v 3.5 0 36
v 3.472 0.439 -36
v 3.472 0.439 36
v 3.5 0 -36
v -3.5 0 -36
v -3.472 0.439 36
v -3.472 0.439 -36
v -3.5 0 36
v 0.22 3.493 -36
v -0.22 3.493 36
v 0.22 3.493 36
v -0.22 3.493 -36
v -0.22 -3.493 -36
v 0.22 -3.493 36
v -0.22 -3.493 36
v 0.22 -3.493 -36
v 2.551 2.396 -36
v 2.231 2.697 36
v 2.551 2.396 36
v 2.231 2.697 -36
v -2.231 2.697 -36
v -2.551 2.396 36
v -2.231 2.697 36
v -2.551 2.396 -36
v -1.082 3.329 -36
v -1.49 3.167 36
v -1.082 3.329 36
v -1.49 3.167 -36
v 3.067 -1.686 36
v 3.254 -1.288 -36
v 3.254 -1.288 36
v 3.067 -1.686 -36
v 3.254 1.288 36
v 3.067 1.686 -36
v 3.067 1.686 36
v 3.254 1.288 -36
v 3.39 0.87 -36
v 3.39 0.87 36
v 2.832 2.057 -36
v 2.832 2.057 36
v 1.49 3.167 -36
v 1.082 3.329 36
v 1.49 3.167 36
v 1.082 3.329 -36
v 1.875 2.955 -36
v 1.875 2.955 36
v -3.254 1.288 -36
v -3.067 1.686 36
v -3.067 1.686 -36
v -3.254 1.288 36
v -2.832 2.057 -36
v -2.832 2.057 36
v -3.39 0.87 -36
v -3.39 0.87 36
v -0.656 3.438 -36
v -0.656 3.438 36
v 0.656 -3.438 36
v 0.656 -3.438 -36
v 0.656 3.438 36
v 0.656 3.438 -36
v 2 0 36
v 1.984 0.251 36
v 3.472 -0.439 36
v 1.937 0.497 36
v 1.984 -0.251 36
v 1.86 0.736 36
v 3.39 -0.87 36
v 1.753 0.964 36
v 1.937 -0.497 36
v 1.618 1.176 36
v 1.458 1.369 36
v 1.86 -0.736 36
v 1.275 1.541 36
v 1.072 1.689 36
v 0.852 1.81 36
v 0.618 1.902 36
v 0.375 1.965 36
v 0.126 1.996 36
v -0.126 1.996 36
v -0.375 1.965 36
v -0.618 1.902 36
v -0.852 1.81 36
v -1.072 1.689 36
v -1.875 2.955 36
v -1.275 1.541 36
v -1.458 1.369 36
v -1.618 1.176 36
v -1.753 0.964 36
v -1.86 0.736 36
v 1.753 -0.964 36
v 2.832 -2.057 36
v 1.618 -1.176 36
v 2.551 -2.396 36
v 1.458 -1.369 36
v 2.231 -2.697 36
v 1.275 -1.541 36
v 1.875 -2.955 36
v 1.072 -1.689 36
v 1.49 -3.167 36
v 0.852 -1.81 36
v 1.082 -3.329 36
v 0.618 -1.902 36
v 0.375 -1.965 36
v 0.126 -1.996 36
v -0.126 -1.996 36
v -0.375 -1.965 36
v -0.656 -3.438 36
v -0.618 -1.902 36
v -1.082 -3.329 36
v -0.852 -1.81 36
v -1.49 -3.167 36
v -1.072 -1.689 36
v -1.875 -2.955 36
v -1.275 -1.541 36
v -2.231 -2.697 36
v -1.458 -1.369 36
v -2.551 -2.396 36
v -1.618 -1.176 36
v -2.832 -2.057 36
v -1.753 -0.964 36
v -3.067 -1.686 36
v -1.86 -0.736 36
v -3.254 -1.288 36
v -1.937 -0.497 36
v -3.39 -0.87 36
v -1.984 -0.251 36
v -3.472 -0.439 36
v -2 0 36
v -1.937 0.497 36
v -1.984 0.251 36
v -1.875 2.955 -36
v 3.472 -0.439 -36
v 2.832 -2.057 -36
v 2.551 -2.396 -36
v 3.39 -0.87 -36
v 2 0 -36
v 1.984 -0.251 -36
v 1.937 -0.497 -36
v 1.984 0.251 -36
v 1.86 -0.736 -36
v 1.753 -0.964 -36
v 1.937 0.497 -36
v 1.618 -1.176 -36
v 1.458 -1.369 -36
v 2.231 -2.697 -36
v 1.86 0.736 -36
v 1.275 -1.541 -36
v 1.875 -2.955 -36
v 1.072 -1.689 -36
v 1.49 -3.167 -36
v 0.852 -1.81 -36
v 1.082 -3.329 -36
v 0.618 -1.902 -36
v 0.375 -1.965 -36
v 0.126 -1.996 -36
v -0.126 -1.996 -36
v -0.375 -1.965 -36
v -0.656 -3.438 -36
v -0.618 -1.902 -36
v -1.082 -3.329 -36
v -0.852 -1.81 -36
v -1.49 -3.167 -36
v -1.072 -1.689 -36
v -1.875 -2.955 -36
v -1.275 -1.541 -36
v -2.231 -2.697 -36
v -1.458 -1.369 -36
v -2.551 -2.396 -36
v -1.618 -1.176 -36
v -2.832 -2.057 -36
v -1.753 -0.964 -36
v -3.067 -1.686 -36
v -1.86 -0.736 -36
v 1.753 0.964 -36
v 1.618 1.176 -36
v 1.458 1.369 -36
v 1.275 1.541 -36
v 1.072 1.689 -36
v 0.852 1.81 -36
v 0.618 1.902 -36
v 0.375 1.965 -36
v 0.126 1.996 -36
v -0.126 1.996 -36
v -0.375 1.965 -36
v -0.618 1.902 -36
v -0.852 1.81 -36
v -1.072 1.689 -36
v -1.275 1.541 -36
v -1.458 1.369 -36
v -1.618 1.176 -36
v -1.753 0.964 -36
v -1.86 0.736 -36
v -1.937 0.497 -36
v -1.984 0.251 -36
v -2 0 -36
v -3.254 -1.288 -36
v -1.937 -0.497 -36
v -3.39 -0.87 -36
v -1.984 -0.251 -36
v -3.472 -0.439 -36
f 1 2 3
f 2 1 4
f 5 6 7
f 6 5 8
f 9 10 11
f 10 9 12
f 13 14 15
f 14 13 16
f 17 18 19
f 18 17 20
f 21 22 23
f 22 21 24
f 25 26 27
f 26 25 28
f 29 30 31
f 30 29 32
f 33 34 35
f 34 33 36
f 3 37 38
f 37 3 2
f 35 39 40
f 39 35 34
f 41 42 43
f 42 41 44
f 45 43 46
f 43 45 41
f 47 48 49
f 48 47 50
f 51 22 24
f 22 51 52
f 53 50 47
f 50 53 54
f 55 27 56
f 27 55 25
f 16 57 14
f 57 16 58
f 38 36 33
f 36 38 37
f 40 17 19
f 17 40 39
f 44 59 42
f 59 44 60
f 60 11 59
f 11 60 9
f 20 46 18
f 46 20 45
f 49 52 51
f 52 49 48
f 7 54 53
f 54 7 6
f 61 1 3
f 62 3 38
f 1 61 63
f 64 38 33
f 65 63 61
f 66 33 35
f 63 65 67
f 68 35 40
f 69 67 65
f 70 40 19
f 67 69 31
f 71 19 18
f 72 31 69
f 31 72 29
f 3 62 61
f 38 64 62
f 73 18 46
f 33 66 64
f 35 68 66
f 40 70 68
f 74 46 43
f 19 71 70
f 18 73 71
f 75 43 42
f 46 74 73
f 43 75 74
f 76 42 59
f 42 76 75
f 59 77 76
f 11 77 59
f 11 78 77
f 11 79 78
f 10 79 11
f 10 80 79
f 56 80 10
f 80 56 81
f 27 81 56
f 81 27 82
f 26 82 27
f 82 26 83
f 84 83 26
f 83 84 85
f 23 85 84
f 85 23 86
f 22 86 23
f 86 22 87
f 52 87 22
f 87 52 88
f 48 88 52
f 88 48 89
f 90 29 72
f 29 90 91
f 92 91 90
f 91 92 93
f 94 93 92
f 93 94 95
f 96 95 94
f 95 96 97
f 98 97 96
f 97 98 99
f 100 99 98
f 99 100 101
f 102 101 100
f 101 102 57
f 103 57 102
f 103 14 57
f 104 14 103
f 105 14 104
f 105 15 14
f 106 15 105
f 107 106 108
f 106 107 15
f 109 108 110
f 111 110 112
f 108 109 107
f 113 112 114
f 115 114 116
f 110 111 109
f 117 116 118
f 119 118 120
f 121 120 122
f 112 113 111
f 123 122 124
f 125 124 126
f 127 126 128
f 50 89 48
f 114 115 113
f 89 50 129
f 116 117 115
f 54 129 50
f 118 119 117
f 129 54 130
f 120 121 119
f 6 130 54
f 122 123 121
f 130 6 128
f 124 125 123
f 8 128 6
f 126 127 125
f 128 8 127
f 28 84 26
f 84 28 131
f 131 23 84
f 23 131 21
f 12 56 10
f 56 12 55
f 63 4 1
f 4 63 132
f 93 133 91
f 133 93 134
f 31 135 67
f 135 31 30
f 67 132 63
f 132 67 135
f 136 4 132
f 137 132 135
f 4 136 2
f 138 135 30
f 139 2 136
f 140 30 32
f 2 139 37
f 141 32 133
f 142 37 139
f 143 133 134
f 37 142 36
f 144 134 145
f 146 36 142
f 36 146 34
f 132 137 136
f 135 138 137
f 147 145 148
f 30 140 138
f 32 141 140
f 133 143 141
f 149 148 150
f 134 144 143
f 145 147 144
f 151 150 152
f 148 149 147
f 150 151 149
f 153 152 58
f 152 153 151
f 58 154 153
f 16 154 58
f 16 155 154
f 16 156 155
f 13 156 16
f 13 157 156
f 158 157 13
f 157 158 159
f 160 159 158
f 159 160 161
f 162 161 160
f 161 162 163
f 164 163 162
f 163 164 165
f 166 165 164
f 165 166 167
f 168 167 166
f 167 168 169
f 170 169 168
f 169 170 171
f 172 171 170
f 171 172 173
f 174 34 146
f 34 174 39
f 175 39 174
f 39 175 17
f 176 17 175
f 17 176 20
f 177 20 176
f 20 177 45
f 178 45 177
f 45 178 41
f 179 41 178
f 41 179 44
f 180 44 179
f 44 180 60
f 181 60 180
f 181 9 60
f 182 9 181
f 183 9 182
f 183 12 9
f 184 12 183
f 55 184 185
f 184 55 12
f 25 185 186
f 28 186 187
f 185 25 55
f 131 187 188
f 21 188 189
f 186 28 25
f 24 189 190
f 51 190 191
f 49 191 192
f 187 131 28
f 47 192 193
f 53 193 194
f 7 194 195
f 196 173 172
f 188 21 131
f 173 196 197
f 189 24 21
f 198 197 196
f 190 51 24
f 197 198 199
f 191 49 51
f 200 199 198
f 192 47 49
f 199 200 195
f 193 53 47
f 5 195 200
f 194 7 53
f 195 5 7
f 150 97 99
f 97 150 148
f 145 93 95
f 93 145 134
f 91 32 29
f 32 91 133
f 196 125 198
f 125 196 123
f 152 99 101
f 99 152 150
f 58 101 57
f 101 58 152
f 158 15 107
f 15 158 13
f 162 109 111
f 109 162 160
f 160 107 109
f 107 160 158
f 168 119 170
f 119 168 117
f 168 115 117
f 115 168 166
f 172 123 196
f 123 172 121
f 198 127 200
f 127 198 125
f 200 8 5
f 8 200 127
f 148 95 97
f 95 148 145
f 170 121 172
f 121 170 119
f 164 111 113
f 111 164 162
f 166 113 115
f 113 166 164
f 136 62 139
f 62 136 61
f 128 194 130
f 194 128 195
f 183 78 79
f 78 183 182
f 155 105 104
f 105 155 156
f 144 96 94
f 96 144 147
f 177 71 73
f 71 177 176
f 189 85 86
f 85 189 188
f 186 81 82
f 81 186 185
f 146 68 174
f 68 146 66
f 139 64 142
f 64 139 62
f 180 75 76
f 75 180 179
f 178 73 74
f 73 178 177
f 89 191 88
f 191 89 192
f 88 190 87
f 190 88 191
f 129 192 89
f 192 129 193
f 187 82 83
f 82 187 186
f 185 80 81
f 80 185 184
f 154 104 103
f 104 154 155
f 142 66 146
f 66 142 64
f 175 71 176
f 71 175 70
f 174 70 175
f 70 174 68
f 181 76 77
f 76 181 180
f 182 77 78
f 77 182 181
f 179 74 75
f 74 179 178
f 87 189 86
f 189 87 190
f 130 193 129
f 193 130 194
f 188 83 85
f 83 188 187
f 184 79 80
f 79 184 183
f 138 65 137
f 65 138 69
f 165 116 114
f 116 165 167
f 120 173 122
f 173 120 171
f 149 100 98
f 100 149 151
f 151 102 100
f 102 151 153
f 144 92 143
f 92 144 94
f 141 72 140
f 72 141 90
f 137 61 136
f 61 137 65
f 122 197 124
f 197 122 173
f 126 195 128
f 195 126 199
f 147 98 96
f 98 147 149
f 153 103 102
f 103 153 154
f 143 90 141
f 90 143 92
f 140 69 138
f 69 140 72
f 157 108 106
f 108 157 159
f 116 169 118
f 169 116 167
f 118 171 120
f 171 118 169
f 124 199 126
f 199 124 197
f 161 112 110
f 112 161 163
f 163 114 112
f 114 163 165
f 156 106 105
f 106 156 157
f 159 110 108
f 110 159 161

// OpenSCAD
$fn = 50;


difference() {
	union() {
		translate(v = [0, 0, -36.0000000000]) {
			cylinder(h = 72, r = 3.5000000000);
		}
	}
	union() {
		translate(v = [0, 0, -100.0000000000]) {
			cylinder(h = 200, r = 2.0000000000);
		}
	}
}
